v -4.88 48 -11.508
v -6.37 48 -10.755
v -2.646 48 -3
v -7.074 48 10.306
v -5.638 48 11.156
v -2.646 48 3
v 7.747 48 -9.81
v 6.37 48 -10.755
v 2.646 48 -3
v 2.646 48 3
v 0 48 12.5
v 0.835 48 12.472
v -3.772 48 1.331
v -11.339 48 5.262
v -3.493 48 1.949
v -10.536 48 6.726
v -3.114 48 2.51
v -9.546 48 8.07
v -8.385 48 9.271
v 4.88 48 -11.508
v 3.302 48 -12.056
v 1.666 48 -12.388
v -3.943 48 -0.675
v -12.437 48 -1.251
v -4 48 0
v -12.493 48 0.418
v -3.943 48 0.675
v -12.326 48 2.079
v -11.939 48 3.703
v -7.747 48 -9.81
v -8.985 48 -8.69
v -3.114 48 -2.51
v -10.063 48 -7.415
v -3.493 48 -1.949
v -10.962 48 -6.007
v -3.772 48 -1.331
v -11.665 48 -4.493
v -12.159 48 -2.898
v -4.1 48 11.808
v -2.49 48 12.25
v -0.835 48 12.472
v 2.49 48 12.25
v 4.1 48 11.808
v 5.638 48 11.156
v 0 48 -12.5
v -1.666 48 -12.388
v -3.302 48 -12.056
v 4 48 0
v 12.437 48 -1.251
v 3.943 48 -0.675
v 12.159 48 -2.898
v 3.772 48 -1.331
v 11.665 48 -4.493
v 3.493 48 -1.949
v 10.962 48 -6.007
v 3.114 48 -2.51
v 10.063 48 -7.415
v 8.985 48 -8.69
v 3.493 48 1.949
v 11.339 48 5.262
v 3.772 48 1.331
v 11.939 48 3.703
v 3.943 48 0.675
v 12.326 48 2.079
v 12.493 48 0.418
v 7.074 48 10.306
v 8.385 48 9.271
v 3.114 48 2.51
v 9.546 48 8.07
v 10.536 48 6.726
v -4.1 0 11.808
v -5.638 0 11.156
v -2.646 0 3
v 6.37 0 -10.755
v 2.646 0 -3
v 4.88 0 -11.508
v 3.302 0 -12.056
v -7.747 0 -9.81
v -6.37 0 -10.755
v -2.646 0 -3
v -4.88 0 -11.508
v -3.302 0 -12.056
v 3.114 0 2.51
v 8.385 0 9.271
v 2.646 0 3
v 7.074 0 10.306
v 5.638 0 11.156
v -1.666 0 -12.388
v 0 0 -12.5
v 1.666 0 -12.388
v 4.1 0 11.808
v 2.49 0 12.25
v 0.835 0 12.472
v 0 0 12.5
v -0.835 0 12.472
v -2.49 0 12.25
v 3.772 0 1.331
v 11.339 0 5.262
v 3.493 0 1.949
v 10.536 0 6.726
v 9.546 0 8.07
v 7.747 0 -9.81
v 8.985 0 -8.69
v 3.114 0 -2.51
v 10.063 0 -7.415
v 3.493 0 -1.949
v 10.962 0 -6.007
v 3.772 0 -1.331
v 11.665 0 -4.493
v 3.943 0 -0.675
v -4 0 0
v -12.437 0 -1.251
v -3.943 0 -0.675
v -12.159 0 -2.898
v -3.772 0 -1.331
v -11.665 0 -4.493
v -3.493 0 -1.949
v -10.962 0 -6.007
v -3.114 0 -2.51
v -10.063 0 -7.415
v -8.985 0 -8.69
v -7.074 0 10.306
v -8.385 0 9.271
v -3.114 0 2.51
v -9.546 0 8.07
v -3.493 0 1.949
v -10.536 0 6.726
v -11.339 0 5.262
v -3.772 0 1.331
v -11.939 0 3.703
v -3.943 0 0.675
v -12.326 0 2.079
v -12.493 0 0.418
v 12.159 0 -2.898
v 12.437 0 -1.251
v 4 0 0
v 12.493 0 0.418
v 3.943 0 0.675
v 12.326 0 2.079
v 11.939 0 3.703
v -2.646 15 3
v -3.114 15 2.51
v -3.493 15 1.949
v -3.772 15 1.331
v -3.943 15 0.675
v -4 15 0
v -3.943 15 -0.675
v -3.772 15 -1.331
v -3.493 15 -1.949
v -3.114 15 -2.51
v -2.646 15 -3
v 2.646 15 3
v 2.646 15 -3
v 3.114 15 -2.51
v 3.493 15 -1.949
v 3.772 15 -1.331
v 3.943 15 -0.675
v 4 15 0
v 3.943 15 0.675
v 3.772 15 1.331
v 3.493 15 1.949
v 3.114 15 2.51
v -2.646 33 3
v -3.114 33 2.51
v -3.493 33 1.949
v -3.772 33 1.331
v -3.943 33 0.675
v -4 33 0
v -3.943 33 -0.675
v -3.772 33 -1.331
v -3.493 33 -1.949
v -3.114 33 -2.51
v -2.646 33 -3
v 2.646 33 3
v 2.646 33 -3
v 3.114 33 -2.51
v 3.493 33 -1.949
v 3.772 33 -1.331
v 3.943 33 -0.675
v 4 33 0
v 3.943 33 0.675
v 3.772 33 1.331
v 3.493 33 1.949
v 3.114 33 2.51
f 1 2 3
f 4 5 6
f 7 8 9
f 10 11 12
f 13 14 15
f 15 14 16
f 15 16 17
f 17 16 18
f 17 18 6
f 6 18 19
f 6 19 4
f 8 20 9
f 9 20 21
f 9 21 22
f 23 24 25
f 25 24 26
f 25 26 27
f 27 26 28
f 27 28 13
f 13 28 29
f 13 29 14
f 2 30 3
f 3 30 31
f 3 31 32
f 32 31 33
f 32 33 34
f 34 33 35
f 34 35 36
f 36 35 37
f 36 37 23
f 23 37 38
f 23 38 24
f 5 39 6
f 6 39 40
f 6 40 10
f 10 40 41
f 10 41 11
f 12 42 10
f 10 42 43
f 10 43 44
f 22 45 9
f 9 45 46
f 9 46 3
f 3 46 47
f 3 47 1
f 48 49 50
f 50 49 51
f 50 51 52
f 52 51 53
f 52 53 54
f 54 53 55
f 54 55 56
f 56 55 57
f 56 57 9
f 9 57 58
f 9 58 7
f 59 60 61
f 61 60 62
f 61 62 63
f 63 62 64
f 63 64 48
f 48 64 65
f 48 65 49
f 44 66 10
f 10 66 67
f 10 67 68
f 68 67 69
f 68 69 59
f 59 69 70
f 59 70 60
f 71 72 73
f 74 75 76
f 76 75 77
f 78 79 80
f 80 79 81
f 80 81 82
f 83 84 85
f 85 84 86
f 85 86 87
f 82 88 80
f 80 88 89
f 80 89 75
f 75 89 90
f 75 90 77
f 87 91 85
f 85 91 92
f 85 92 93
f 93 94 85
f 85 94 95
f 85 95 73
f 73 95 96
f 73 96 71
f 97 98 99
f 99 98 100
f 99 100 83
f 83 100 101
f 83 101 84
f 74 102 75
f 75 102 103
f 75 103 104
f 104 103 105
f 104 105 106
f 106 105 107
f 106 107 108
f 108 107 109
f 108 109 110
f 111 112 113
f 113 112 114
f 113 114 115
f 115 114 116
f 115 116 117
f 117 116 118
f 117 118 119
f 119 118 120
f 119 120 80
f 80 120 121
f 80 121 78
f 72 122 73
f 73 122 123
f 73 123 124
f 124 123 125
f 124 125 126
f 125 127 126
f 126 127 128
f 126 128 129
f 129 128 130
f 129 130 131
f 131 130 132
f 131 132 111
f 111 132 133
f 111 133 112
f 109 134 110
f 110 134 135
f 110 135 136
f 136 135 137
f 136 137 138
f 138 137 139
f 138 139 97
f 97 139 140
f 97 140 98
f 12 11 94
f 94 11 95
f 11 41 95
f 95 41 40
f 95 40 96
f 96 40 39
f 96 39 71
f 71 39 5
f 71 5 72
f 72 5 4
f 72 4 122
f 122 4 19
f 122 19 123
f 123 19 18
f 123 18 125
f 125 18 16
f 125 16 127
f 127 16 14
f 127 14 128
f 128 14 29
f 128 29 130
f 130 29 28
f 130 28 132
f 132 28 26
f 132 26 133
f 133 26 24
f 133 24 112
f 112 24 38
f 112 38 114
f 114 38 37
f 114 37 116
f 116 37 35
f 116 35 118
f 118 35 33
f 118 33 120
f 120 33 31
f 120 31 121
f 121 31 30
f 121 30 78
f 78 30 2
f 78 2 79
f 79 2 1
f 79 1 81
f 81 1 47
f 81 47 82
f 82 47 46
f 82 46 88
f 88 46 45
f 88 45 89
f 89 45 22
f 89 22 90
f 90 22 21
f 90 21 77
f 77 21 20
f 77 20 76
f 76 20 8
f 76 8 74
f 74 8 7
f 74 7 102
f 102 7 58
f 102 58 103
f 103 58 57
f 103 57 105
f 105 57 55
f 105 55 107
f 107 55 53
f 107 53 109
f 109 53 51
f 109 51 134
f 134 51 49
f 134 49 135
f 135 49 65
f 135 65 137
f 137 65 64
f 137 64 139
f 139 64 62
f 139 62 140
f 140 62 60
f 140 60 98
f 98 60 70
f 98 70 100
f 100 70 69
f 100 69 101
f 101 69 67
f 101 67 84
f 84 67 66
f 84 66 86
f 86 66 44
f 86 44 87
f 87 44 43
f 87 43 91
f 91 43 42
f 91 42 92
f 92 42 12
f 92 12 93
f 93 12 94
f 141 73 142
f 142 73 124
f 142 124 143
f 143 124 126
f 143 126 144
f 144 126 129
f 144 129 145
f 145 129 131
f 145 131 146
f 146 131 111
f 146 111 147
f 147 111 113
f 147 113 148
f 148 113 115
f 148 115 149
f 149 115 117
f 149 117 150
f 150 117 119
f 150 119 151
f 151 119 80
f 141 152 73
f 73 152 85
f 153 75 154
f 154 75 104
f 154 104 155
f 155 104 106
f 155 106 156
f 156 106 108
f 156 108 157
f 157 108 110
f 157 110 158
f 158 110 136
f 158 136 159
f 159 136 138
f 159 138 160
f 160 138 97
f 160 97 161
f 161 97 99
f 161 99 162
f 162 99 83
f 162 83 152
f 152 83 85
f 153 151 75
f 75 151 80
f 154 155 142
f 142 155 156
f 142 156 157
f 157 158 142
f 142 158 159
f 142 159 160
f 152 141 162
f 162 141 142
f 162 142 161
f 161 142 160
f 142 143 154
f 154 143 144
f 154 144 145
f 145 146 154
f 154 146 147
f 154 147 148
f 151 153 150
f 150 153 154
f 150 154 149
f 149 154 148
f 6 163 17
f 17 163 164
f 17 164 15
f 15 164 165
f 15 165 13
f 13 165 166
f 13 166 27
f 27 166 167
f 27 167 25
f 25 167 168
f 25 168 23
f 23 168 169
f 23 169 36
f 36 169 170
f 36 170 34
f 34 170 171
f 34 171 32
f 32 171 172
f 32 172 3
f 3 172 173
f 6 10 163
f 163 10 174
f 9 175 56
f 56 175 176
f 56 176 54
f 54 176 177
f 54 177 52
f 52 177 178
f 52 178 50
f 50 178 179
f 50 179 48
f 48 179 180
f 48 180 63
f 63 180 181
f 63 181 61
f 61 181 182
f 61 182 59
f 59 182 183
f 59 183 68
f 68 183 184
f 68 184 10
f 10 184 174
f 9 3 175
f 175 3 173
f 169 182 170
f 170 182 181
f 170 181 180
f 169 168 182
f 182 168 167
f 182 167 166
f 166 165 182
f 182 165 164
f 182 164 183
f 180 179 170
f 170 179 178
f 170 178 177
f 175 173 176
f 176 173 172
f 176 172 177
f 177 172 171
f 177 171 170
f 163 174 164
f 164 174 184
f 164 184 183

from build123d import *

# Parameters (mm, degrees)
CROQUIS1_R              = 12.5
SALIENTE_EXTRUIR1_DEPTH = 48
CORTAR_EXTRUIR1_DEPTH   = 15
CORTAR_EXTRUIR2_START   = 33
CORTAR_EXTRUIR2_DEPTH   = 15


with BuildPart() as part:
    # Croquis1 → Saliente-Extruir1 (new body)
    with BuildSketch(Plane(origin=(0, 0, 0), x_dir=(1, 0, 0), z_dir=(0, 1, 0))):
        Circle(CROQUIS1_R)
    extrude(amount=SALIENTE_EXTRUIR1_DEPTH)

    # Croquis2 → Cortar-Extruir1 (cut)
    with BuildSketch(Plane(origin=(0, 0, 0), x_dir=(1, 0, 0), z_dir=(0, 1, 0))):
        with BuildLine():
            Line((-2.645751311, -3), (2.645751311, -3))
            ThreePointArc((2.645751311, -3), (4, 0), (2.645751311, 3))
            Line((2.645751311, 3), (-2.645751311, 3))
            ThreePointArc((-2.645751311, 3), (-4, 0), (-2.645751311, -3))
        make_face()
    extrude(amount=CORTAR_EXTRUIR1_DEPTH, mode=Mode.SUBTRACT)

    # Croquis2<2> → Cortar-Extruir2 (cut)
    with BuildSketch(Plane(origin=(0, 0, 0), x_dir=(1, 0, 0), z_dir=(0, 1, 0)).offset(CORTAR_EXTRUIR2_START)):
        with BuildLine():
            Line((-2.645751311, -3), (2.645751311, -3))
            ThreePointArc((2.645751311, -3), (4, 0), (2.645751311, 3))
            Line((2.645751311, 3), (-2.645751311, 3))
            ThreePointArc((-2.645751311, 3), (-4, 0), (-2.645751311, -3))
        make_face()
    extrude(amount=CORTAR_EXTRUIR2_DEPTH, mode=Mode.SUBTRACT)


solid = part.part
